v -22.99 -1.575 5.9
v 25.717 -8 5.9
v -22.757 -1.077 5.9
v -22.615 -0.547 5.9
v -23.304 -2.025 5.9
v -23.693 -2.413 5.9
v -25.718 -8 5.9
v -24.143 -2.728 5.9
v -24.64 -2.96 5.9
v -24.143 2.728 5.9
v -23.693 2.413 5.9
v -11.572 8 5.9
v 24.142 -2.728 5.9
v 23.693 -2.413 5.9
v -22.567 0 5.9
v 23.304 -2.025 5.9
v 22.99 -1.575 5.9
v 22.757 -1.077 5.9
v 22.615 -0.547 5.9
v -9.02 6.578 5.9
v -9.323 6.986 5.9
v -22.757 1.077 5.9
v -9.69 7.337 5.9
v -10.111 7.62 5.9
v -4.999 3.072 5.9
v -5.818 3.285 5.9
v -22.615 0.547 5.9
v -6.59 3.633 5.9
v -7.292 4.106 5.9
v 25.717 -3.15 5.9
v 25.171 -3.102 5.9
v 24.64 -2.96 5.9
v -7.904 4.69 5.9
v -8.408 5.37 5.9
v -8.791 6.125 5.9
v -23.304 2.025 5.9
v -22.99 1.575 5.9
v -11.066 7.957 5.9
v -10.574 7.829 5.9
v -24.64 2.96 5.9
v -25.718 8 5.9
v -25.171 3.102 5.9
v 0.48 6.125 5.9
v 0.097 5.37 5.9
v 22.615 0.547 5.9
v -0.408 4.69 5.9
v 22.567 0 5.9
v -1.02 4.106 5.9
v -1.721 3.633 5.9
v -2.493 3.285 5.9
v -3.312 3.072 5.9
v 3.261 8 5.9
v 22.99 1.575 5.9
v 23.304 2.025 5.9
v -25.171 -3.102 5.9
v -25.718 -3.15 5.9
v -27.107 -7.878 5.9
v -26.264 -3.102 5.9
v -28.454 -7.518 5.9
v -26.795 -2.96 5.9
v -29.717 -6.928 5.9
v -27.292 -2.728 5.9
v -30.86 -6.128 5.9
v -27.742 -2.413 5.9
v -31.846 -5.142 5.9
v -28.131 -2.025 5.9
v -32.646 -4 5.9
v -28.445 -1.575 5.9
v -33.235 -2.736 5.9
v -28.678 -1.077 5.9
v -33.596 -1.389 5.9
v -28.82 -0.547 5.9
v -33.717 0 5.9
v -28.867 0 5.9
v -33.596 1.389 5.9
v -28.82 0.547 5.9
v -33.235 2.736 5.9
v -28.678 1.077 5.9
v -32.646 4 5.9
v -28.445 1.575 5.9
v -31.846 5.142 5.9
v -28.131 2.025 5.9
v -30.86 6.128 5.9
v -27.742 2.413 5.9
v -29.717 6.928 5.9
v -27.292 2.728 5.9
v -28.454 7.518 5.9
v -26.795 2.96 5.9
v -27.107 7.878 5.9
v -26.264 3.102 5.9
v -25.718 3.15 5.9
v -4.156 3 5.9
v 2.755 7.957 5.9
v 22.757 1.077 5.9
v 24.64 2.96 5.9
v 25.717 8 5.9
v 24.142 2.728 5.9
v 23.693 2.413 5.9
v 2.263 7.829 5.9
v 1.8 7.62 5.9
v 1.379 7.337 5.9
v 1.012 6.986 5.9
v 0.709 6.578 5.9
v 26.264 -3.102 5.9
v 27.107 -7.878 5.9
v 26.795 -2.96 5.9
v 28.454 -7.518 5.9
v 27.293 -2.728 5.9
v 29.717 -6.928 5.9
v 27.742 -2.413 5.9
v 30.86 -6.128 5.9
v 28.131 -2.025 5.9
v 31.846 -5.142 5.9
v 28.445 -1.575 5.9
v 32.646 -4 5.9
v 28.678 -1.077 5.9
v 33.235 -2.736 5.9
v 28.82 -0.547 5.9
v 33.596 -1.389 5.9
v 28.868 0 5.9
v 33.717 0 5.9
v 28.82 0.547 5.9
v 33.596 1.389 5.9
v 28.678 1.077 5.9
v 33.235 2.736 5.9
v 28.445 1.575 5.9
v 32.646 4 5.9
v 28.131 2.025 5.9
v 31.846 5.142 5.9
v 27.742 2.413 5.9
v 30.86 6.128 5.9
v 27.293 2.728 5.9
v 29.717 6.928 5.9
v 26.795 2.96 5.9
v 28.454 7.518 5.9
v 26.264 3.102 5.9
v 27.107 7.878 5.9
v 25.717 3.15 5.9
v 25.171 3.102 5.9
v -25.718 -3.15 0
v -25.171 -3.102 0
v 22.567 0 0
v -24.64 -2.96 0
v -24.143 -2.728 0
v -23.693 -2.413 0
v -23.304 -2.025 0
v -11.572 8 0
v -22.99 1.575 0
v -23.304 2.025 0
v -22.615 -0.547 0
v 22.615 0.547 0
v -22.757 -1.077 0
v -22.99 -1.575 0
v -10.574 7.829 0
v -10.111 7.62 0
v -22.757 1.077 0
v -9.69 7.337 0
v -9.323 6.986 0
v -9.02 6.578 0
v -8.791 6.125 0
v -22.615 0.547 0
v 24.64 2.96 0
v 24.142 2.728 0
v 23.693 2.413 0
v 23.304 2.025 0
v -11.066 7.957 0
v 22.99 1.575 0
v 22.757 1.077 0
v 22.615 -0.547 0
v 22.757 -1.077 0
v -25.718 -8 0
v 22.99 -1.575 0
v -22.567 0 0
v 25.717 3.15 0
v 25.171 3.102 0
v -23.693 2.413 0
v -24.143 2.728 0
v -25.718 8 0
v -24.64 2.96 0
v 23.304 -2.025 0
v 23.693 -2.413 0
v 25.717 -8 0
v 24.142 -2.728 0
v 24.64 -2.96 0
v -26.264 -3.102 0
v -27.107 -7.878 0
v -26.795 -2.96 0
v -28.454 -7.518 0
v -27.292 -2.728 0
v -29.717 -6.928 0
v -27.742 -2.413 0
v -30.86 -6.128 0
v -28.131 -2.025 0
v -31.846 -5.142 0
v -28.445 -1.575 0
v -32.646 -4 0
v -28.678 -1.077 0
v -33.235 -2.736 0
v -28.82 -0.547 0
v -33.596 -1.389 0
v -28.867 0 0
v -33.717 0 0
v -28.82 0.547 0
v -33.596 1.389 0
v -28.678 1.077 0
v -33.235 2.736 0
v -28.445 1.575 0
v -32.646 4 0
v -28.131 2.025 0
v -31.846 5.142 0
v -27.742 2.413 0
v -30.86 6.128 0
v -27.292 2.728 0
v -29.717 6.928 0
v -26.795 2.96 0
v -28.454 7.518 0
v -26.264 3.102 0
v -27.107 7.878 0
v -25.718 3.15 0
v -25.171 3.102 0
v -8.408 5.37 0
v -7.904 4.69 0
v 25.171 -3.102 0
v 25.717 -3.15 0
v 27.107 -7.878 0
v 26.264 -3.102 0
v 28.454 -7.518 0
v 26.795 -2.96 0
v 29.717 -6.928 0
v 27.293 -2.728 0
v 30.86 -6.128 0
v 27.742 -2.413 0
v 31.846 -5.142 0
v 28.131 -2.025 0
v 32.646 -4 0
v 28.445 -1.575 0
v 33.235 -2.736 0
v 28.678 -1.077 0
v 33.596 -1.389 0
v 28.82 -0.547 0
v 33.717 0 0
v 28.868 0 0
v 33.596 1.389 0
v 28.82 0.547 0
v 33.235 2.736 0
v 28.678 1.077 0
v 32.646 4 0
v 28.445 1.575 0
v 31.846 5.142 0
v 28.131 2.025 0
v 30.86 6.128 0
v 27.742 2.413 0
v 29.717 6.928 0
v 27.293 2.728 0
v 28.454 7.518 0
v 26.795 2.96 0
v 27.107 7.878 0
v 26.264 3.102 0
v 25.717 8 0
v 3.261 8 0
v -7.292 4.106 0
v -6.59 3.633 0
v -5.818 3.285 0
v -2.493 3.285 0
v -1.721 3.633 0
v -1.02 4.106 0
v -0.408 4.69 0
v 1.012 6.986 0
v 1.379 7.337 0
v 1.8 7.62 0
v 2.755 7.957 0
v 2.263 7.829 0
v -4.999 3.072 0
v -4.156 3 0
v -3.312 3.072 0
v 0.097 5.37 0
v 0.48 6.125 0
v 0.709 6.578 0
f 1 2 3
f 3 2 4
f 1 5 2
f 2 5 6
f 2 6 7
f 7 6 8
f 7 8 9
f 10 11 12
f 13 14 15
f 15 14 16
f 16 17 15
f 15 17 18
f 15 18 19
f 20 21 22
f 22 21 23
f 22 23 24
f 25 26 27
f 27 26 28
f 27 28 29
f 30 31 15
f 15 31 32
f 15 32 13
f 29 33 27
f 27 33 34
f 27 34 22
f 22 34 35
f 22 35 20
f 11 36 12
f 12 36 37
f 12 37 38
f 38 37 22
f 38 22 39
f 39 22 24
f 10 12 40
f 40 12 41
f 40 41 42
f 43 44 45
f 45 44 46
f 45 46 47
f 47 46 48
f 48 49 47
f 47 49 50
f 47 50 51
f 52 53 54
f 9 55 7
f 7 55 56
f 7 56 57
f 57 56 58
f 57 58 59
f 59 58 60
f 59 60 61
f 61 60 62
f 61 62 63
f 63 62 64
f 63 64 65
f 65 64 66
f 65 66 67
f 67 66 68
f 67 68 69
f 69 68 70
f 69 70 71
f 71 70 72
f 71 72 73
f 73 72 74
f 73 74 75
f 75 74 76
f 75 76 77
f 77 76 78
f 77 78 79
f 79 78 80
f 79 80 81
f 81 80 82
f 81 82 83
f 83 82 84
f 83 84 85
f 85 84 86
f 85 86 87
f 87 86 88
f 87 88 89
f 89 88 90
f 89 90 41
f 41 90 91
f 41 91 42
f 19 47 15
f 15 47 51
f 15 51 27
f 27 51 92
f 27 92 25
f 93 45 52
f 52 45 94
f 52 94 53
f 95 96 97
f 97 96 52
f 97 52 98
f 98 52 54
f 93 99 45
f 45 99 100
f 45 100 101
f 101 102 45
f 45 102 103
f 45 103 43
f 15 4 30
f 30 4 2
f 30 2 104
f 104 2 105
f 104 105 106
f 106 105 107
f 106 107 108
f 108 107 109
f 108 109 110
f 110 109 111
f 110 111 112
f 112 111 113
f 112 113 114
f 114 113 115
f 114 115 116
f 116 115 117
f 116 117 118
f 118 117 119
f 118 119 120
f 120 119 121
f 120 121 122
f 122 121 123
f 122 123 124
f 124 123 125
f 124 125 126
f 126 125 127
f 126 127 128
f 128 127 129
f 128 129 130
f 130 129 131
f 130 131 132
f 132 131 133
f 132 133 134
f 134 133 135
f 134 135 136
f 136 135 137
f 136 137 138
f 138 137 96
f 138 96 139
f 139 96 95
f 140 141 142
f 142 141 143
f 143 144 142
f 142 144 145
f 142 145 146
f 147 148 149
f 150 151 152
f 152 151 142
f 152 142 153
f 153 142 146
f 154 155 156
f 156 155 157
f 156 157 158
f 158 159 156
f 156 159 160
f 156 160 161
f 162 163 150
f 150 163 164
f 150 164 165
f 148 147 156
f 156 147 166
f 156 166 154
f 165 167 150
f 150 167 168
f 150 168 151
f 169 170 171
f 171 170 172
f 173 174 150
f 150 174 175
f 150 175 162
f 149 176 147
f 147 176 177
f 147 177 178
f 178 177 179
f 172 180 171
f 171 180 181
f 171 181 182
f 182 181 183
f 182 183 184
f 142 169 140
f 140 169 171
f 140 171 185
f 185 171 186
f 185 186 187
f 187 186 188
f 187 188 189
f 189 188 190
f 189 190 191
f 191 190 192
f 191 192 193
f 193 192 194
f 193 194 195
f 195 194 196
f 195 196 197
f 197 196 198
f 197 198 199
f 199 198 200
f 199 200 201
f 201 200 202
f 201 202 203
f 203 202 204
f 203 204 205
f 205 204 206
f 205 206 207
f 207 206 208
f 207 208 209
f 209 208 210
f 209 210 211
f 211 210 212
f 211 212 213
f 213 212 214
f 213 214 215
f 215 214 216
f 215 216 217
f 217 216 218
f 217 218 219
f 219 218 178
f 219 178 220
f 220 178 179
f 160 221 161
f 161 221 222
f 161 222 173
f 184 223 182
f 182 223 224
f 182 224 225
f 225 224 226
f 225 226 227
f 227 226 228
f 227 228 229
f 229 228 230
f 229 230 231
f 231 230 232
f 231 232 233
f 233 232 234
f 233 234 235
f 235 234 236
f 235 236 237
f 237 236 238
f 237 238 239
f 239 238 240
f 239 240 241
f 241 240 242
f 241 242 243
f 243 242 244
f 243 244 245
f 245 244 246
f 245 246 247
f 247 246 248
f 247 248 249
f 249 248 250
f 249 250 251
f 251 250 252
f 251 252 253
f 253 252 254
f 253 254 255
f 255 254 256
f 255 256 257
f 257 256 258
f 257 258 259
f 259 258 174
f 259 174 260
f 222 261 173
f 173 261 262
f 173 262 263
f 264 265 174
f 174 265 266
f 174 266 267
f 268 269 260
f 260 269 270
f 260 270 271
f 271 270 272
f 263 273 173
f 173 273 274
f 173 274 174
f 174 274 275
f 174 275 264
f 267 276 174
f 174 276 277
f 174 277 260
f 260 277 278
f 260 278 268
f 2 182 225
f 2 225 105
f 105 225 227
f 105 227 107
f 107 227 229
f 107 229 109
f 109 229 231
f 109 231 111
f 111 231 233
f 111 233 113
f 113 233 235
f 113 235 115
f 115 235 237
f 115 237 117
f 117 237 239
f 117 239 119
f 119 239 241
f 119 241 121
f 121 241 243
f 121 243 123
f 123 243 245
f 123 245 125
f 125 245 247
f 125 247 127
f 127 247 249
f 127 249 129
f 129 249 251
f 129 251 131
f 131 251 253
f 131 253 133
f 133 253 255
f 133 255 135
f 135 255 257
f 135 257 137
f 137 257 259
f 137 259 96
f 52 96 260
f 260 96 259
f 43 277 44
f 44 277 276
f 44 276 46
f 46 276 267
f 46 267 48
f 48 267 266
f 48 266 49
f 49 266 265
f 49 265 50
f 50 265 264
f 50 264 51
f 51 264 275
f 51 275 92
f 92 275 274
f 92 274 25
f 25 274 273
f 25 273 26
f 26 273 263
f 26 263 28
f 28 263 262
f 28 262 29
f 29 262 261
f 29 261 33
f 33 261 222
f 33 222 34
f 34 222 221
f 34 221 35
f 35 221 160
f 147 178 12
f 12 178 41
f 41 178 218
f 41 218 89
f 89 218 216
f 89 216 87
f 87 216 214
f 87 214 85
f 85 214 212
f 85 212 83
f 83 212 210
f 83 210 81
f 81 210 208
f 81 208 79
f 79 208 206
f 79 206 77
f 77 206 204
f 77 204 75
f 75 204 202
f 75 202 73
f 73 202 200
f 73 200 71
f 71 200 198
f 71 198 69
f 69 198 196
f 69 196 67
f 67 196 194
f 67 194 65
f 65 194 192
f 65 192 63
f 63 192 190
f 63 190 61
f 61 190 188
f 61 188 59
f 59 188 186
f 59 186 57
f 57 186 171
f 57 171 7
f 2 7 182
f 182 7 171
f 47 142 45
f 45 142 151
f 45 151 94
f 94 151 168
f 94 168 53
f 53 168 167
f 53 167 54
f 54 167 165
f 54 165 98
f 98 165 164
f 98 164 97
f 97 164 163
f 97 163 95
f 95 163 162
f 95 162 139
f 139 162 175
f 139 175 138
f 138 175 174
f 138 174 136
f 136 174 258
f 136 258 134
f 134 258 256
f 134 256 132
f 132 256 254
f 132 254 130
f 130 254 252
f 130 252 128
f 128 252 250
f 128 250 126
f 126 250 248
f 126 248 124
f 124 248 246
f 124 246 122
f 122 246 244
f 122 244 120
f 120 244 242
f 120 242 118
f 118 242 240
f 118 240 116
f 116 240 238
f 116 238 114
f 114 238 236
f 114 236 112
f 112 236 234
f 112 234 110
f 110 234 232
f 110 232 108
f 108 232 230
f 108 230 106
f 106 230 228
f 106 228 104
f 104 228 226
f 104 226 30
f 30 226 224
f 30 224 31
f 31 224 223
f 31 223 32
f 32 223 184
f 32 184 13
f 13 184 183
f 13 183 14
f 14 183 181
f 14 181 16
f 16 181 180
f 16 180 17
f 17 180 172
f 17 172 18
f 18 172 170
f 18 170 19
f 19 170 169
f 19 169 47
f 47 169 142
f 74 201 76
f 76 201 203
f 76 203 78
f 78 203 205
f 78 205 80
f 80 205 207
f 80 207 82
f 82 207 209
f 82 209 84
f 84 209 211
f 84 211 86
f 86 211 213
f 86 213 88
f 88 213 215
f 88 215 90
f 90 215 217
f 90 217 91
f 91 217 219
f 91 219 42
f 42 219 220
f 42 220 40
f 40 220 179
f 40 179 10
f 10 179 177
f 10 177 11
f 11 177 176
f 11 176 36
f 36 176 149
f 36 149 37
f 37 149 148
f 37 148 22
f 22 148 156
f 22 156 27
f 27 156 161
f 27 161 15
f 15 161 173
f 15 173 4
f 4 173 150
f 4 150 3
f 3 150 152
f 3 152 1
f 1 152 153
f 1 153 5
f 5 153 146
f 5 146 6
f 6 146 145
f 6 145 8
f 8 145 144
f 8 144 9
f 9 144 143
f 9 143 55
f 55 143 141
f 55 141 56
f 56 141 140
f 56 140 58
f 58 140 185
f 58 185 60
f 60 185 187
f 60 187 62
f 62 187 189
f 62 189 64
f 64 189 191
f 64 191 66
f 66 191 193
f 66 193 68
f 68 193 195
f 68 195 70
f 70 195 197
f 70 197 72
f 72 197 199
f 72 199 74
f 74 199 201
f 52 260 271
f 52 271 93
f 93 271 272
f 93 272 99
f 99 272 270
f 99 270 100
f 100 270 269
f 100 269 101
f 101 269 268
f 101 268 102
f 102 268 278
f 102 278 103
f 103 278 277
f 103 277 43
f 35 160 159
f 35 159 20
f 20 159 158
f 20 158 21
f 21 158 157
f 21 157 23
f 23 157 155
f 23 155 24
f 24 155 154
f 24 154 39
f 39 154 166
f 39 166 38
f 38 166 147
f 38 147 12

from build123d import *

# Parameters (mm, degrees)
SKETCH1_R           = 3.15
BOSS_EXTRUDE1_DEPTH = 5.9
FILLET1_R           = 3


with BuildPart() as part:
    # Sketch1 → Boss-Extrude1 (new body)
    with BuildSketch(Plane.XY):
        with BuildLine():
            Line((25.7175, -8), (-25.7175, -8))
            ThreePointArc((-25.7175, -8), (-33.7175, 0), (-25.7175, 8))
            Line((-25.7175, 8), (-9.155600281, 8))
            ThreePointArc((-9.155600281, 8), (-4.155600281, 3), (0.844399719, 8))
            Line((0.844399719, 8), (25.7175, 8))
            ThreePointArc((25.7175, 8), (33.7175, 0), (25.7175, -8))
        make_face()
        with Locations((25.7175, 0)):
            Circle(SKETCH1_R, mode=Mode.SUBTRACT)
        with Locations((-25.7175, 0)):
            Circle(SKETCH1_R, mode=Mode.SUBTRACT)
    extrude(amount=BOSS_EXTRUDE1_DEPTH)

    # Fillet1
    fillet1_edges = [part.edges().sort_by_distance(p)[0] for p in [
        (-9.155600281, 8, 2.95),
        (0.844399719, 8, 2.95),
    ]]
    fillet(fillet1_edges, radius=FILLET1_R)


solid = part.part
